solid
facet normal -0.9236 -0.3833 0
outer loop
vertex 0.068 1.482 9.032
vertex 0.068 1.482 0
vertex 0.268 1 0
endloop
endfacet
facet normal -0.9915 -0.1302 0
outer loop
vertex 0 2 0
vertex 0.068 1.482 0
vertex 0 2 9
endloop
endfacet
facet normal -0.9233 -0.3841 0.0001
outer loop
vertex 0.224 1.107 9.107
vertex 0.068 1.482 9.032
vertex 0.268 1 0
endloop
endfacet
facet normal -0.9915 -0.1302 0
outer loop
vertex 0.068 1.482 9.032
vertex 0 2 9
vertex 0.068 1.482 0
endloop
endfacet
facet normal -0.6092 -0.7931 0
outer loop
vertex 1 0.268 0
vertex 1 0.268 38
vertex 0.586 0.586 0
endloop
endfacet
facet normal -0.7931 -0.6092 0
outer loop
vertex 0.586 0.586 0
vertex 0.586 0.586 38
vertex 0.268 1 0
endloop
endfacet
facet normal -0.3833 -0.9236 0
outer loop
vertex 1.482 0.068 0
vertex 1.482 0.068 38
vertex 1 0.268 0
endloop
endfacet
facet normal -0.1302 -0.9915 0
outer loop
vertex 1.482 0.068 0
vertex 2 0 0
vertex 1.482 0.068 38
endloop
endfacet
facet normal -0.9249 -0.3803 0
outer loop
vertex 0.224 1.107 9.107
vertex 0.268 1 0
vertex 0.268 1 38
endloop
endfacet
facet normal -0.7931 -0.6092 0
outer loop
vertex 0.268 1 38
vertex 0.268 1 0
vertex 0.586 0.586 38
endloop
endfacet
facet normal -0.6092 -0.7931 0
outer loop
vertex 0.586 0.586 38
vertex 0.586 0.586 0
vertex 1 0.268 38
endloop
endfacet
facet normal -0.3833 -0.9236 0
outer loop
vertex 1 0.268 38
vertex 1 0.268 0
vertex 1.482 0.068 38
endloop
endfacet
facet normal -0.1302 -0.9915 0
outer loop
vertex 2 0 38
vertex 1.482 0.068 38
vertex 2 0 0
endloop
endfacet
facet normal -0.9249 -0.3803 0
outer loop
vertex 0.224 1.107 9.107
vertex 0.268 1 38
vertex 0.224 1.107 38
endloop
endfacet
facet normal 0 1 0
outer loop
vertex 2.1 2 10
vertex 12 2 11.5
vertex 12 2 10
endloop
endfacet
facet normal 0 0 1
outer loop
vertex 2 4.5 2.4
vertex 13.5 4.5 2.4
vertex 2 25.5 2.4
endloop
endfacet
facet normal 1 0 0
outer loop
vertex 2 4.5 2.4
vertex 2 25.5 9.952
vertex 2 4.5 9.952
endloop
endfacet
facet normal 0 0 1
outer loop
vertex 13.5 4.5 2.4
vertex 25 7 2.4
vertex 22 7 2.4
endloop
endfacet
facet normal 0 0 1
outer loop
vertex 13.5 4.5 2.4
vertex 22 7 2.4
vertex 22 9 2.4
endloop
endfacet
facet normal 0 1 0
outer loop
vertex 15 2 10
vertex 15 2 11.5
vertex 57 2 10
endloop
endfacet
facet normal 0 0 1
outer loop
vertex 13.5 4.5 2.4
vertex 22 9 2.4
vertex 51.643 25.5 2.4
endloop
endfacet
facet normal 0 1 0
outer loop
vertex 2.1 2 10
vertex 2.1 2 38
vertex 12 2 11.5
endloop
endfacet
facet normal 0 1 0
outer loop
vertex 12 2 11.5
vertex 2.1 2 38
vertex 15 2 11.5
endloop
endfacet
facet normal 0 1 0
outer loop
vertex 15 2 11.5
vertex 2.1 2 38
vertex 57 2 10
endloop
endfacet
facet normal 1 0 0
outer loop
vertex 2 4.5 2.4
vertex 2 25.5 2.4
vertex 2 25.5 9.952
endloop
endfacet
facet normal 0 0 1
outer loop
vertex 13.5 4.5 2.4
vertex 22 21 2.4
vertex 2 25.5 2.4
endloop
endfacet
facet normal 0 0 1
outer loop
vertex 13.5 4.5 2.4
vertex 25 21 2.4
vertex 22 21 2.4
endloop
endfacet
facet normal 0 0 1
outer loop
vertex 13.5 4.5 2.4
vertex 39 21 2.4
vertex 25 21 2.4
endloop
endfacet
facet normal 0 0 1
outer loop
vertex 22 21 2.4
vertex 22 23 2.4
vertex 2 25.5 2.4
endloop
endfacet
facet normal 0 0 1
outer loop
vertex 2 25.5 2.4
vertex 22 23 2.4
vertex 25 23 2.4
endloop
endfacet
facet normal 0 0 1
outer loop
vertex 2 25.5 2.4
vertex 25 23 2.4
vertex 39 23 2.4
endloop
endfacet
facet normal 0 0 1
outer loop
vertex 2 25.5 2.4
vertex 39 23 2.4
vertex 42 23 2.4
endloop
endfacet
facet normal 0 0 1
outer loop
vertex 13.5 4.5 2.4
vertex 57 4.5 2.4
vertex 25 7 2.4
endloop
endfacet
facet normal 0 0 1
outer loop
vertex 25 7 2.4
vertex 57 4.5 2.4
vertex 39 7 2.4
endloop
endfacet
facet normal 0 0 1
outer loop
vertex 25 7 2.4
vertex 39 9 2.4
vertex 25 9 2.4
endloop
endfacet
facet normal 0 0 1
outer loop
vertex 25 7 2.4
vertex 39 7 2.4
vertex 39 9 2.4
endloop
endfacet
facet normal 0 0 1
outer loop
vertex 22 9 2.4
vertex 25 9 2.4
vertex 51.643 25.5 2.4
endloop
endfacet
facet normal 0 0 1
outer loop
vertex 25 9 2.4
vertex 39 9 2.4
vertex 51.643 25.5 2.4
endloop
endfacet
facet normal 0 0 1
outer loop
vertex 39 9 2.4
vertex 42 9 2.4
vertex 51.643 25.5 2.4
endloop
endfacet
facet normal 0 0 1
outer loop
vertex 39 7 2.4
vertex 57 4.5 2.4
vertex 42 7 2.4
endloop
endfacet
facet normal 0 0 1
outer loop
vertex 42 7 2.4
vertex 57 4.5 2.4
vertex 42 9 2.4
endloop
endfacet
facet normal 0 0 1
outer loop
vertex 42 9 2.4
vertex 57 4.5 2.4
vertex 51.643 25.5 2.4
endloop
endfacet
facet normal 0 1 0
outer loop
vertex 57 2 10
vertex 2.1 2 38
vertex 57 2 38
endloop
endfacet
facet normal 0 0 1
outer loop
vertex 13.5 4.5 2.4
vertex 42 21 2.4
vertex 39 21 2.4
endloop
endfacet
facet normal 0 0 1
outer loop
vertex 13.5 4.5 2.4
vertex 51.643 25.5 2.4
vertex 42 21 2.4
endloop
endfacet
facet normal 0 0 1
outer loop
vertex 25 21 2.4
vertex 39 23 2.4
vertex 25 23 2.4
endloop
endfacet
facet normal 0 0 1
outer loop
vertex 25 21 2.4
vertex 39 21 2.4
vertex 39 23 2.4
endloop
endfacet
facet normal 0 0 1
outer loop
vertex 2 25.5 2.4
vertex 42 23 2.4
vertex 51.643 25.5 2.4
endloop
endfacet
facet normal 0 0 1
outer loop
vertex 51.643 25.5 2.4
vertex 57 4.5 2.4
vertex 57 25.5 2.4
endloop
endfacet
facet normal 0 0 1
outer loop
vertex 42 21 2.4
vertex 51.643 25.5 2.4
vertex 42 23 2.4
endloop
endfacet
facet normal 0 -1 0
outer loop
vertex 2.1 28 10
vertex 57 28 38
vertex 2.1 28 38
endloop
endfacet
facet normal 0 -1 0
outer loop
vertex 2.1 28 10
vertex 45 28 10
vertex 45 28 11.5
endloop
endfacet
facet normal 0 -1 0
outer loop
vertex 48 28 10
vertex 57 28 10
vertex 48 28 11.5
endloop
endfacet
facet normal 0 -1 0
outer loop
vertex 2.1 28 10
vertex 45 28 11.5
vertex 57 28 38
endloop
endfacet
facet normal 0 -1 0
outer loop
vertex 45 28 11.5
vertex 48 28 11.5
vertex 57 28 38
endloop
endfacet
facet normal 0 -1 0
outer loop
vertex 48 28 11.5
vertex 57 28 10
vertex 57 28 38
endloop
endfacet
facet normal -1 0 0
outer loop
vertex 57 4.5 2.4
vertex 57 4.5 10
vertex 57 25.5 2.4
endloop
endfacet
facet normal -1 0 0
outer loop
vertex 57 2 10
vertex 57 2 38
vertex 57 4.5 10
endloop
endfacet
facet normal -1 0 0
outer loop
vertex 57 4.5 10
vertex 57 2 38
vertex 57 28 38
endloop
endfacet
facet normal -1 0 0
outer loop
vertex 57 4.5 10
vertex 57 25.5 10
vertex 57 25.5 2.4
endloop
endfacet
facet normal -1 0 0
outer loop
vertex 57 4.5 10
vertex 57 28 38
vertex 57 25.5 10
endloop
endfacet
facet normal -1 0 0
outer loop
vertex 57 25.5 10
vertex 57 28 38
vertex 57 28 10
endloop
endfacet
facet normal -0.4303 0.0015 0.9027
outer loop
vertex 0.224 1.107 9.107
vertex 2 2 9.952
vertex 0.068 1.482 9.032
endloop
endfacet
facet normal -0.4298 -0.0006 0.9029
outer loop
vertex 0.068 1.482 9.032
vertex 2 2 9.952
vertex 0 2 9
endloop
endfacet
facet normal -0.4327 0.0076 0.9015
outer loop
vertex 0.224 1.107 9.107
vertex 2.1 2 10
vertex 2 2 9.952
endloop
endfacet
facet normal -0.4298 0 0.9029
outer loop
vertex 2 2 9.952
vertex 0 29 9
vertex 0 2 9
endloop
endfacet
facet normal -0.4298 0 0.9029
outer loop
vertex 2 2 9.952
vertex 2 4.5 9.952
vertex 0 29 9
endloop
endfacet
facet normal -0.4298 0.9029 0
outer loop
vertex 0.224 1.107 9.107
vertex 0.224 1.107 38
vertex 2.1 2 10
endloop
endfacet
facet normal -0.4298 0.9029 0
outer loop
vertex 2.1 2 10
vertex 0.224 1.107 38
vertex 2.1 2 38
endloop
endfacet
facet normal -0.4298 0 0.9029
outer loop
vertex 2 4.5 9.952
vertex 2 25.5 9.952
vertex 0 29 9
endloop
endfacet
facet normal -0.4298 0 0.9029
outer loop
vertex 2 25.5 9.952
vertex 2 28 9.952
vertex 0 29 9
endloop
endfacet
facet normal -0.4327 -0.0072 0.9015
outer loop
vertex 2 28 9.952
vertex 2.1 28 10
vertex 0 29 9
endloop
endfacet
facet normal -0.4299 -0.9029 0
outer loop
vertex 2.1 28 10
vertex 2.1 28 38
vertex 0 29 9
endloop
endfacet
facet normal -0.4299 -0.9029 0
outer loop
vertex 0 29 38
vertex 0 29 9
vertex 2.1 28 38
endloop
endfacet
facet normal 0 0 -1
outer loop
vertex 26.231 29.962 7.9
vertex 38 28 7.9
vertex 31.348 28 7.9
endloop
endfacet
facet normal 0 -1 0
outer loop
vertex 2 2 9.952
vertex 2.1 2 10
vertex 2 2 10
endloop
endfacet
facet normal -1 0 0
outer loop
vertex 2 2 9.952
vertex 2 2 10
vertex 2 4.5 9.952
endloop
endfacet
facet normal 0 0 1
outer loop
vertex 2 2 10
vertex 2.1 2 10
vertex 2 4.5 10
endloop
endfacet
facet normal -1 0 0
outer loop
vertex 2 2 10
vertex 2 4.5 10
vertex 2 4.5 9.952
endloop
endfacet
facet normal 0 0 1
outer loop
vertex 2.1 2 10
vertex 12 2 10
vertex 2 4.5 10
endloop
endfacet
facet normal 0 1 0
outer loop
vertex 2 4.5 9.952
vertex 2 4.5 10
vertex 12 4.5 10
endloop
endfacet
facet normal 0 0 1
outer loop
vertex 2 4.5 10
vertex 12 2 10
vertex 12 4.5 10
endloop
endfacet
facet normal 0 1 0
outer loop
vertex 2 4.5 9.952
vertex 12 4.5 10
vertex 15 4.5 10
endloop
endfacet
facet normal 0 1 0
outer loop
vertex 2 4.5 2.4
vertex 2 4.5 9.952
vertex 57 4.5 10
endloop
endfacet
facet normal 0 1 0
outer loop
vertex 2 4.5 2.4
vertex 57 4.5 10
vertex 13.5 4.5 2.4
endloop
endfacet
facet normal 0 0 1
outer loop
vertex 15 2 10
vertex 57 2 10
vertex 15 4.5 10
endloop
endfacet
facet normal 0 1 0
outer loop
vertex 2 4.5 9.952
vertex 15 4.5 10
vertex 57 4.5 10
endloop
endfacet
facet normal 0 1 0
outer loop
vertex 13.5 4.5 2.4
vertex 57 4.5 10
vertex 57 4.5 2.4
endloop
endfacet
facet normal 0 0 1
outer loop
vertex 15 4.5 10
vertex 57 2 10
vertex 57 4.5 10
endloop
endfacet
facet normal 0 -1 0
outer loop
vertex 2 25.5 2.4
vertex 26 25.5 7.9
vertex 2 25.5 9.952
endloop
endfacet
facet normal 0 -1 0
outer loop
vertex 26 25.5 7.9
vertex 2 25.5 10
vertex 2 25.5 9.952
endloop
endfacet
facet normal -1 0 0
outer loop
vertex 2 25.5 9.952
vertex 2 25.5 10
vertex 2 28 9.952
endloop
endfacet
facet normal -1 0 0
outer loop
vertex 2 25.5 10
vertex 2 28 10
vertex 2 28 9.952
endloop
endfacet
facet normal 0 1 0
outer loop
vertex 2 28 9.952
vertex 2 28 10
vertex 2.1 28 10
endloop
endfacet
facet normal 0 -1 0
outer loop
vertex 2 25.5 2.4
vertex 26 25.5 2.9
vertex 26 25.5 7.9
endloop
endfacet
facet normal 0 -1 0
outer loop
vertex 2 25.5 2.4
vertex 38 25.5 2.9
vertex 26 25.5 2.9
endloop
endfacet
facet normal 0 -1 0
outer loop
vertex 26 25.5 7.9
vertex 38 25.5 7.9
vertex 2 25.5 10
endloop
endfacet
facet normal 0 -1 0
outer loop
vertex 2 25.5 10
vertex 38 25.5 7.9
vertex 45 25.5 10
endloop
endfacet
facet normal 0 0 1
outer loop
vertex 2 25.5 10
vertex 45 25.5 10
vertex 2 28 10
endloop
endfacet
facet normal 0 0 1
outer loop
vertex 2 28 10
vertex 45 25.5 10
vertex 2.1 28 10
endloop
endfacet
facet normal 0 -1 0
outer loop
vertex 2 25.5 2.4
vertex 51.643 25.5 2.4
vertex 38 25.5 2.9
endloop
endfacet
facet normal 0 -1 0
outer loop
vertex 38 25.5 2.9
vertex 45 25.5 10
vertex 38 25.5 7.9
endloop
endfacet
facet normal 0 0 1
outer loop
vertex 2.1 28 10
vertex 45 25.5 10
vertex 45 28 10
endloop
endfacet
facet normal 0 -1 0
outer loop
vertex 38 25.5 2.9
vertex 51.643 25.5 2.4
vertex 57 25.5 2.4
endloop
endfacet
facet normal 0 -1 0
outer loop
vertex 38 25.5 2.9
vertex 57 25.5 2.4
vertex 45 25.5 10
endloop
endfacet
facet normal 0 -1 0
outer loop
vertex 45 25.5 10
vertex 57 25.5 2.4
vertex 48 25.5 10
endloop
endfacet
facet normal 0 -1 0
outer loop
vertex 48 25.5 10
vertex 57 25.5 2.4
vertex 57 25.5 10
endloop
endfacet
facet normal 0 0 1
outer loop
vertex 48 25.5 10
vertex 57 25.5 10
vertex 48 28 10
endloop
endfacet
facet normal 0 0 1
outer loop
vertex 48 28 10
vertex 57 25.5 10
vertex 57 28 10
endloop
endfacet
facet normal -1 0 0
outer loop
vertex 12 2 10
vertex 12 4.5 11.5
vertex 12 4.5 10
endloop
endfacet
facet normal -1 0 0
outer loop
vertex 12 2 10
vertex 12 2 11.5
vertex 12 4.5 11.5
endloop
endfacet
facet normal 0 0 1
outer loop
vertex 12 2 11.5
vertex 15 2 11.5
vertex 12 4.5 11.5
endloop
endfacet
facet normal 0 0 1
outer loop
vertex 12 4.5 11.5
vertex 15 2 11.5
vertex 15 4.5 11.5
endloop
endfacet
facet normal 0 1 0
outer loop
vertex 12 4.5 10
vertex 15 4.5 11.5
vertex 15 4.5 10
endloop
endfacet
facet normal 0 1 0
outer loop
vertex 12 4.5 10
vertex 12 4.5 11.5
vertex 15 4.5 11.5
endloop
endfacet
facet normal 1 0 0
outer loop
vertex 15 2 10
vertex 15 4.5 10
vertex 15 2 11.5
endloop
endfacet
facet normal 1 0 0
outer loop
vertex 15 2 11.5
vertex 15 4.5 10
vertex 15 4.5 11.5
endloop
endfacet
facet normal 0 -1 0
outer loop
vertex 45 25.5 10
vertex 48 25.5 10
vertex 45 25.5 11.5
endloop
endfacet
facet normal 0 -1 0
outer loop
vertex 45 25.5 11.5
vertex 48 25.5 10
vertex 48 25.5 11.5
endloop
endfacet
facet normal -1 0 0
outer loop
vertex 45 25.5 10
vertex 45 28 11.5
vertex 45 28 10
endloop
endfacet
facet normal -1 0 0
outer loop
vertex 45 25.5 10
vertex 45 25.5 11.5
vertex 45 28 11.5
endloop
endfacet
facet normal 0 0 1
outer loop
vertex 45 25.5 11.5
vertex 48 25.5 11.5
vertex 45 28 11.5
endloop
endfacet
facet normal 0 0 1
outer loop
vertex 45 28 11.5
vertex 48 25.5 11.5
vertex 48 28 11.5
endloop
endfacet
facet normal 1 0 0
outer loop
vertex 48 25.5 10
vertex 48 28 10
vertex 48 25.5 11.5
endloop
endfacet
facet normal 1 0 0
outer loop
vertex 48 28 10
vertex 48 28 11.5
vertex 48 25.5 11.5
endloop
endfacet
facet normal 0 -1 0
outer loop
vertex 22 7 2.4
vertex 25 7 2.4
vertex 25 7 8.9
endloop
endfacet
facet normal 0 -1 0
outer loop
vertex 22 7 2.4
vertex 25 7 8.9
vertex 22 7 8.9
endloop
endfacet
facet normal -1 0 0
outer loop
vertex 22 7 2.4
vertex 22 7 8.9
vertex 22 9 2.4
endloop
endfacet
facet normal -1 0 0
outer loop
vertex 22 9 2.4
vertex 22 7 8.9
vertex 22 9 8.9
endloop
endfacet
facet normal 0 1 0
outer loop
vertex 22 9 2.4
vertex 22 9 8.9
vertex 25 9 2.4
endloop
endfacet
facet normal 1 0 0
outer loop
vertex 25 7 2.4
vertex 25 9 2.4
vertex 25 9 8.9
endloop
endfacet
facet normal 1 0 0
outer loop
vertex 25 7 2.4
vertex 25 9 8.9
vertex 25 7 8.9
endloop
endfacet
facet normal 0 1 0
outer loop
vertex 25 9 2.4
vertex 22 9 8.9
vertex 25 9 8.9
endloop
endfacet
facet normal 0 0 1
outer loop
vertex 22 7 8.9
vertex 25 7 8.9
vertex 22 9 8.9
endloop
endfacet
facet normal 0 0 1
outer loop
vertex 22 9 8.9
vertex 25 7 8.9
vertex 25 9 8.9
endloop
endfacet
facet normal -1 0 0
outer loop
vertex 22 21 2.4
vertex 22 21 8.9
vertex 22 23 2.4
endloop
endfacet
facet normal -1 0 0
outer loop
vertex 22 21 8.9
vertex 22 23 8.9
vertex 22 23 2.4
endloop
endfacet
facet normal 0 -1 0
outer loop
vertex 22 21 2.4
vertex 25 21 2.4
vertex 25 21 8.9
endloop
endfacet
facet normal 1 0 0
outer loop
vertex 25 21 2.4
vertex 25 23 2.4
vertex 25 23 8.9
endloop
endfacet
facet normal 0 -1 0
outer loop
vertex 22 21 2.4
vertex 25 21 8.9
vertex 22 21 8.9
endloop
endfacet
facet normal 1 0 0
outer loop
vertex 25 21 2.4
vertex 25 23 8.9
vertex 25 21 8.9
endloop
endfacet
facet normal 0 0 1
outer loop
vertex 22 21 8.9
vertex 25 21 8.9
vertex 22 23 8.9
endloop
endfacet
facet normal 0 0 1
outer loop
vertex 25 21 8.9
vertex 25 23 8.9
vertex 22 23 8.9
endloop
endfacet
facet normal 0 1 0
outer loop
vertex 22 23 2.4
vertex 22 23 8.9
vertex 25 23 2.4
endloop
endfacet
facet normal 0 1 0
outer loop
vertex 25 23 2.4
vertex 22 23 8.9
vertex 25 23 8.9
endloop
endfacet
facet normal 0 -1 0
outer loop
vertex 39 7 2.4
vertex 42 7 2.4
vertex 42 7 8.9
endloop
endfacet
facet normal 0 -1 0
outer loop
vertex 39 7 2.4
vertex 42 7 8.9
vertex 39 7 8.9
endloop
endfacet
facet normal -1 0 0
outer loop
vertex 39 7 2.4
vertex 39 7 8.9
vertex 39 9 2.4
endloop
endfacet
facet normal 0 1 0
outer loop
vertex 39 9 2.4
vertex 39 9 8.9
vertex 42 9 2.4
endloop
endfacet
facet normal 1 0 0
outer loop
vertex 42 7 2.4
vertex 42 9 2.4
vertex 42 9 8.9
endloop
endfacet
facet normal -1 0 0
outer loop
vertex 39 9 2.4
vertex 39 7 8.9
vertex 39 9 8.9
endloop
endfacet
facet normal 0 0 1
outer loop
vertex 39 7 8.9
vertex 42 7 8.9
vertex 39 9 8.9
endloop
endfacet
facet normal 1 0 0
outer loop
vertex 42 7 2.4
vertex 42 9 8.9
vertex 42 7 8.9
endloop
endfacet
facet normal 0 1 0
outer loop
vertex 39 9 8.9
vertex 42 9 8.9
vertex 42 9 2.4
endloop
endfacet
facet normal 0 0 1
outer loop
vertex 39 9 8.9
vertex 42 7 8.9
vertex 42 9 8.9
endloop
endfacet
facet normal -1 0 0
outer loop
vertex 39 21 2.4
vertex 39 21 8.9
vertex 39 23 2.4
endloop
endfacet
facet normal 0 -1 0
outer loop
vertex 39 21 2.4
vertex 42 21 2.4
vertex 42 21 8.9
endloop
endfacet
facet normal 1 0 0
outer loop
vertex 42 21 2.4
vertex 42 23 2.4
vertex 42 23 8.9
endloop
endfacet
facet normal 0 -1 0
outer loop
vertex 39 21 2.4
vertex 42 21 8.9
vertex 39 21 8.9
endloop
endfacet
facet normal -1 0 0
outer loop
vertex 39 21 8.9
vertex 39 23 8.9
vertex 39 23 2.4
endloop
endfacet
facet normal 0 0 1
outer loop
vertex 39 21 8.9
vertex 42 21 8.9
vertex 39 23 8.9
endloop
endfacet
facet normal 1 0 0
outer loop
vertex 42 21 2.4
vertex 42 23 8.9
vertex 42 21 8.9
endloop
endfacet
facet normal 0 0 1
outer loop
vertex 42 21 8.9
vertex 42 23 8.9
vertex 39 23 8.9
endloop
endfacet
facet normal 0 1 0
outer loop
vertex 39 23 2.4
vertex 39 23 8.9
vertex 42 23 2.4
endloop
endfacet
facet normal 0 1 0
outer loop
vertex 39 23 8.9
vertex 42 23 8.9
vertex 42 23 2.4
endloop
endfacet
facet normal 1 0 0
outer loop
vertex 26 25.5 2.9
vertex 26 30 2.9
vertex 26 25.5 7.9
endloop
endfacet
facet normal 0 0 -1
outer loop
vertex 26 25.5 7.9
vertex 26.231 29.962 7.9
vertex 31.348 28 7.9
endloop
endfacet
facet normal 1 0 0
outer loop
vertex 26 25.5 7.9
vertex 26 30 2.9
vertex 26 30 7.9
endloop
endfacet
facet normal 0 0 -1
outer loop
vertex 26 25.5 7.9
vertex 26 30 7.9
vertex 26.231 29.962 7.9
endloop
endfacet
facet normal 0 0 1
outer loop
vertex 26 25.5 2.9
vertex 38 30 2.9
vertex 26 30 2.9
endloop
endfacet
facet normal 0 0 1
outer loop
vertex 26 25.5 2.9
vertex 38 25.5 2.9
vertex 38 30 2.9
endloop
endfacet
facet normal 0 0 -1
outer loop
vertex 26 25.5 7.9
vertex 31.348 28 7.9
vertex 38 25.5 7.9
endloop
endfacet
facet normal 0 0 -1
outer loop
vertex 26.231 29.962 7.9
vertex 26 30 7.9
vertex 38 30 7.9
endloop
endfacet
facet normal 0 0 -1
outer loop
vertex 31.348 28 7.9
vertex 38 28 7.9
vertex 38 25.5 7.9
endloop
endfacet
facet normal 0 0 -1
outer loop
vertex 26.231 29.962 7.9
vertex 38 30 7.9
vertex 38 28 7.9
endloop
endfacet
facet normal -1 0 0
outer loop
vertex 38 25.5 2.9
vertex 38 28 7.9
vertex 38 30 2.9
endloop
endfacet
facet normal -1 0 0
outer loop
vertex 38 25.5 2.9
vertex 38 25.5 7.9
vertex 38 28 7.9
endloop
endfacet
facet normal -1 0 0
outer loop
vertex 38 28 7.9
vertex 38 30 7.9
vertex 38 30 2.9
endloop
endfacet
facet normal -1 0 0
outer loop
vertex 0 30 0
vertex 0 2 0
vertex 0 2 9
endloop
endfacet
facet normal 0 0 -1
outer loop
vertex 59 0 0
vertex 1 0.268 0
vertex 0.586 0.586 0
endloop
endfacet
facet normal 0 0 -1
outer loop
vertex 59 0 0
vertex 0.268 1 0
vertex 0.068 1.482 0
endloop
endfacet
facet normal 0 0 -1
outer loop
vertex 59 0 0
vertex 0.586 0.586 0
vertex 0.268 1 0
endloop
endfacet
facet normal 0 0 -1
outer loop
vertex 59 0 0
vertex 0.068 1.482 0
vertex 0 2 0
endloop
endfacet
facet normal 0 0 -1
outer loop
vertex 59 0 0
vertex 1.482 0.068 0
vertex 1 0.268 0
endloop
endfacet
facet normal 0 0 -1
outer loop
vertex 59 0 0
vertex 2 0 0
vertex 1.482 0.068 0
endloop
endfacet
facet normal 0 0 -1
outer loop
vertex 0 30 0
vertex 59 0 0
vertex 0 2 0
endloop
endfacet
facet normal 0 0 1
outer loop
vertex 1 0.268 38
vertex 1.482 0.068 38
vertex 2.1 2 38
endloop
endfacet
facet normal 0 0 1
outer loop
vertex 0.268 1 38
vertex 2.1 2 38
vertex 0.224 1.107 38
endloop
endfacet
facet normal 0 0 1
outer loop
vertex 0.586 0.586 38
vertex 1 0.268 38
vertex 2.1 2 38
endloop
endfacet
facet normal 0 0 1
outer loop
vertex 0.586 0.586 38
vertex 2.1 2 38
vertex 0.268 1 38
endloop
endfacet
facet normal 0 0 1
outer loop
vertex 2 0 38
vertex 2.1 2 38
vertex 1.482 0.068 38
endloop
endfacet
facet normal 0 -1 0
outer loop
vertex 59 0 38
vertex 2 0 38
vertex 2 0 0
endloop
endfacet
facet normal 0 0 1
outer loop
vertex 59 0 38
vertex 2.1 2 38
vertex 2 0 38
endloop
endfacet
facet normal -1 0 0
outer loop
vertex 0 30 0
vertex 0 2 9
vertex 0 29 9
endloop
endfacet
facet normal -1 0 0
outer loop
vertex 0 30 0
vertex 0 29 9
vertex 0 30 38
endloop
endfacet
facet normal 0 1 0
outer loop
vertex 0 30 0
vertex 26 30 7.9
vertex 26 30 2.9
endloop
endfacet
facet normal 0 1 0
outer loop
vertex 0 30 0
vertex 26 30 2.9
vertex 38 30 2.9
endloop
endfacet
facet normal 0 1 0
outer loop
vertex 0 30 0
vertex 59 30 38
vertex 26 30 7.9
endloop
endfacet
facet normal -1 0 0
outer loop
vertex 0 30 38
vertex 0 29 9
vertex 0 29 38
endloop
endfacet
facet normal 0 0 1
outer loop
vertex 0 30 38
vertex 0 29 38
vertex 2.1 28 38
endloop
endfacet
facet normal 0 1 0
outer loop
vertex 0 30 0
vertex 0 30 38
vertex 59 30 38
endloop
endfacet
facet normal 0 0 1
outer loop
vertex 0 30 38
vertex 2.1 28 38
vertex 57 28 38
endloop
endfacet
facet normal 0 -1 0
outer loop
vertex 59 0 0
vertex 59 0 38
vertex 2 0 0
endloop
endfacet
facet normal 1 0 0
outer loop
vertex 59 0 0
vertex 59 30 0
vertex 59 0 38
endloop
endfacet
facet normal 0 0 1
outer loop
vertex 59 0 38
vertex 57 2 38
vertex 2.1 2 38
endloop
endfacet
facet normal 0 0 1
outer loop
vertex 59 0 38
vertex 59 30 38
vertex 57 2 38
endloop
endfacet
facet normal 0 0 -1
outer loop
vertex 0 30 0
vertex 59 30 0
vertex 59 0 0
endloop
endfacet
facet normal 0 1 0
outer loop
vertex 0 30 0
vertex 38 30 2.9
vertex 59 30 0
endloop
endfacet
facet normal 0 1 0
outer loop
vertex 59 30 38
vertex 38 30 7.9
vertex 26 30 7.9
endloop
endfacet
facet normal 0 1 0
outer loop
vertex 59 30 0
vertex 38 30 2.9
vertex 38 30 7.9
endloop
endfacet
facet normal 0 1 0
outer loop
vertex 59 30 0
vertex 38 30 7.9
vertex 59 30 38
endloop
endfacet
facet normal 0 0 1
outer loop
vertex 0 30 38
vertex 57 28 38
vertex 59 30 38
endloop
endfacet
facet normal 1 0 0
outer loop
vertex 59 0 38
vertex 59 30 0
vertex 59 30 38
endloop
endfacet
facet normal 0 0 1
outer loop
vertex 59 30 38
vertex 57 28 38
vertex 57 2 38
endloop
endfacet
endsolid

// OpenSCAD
// Concept v0; mm. Regenerate using dimensions.json and build.py.
intersection() {
difference() {
difference() {
union() {
difference() {
difference() {
union() {
difference() {
difference() {
union() {
difference() {
difference() {
union() {
difference() {
union() {
union() {
union() {
union() {
union() {
union() {
union() {
union() {
difference() {
difference() {
difference() {
difference() {
union() {
union() {
difference() {
translate([0, 0, 0]) {
hull() {
union() {
union() {
union() {
translate([2, 2, 0]) {
cylinder(h=38,r=2,$fn=24);
}
translate([2, 88.0, 0]) {
cylinder(h=38,r=2,$fn=24);
}
}
translate([105.0, 2, 0]) {
cylinder(h=38,r=2,$fn=24);
}
}
translate([105.0, 88.0, 0]) {
cylinder(h=38,r=2,$fn=24);
}
}
}
}
translate([2.0, 2.0, 2.4]) {
cube([103.0, 86.0, 38]);
}
}
translate([0, 28.0, 0]) {
cube([107.0, 2.0, 38]);
}
}
translate([57.0, 0, 0]) {
cube([2.0, 28.0, 38]);
}
}
translate([-0.05, 2.0, 10.0]) {
cube([2.1, 26.0, 38]);
}
}
hull() {
union() {
translate([-0.05, 1.0, 9.0]) {
cube([0.05, 28.0, 38]);
}
translate([2.05, 2.0, 10.0]) {
cube([0.05, 26.0, 38]);
}
}
}
}
translate([104.95, 49.0, 10.0]) {
cube([2.1, 20.0, 16.0]);
}
}
translate([26.0, 27.95, 2.9]) {
cube([12, 2.1, 5]);
}
}
translate([2.0, 2.0, 2.4]) {
cube([55.0, 2.5, 7.6]);
}
}
translate([2.0, 25.5, 2.4]) {
cube([55.0, 2.5, 7.6]);
}
}
translate([12, 2.0, 9.95]) {
cube([3, 2.5, 1.55]);
}
}
translate([45.0, 25.5, 9.95]) {
cube([3, 2.5, 1.55]);
}
}
translate([22.0, 7.0, 2.35]) {
cube([3, 2, 6.55]);
}
}
translate([22.0, 21.0, 2.35]) {
cube([3, 2, 6.55]);
}
}
translate([39.0, 7.0, 2.35]) {
cube([3, 2, 6.55]);
}
}
translate([39.0, 21.0, 2.35]) {
cube([3, 2, 6.55]);
}
}
translate([26.0, 25.45, 2.9]) {
cube([12, 4.6, 5]);
}
}
translate([6, 82.0, 0]) {
cylinder(h=38,r=4.5,$fn=48);
}
}
translate([6, 82.0, -0.05]) {
cylinder(h=38.1,r=1.7,$fn=48);
}
}
translate([6, 82.0, -0.05]) {
cylinder(h=2.8499999999999996,r=3.5795716689756802,$fn=6);
}
}
translate([101.0, 82.0, 0]) {
cylinder(h=38,r=4.5,$fn=48);
}
}
translate([101.0, 82.0, -0.05]) {
cylinder(h=38.1,r=1.7,$fn=48);
}
}
translate([101.0, 82.0, -0.05]) {
cylinder(h=2.8499999999999996,r=3.5795716689756802,$fn=6);
}
}
translate([65.0, 7, 0]) {
cylinder(h=38,r=4.5,$fn=48);
}
}
translate([65.0, 7, -0.05]) {
cylinder(h=38.1,r=1.7,$fn=48);
}
}
translate([65.0, 7, -0.05]) {
cylinder(h=2.8499999999999996,r=3.5795716689756802,$fn=6);
}
}
translate([101.0, 7, 0]) {
cylinder(h=38,r=4.5,$fn=48);
}
}
translate([101.0, 7, -0.05]) {
cylinder(h=38.1,r=1.7,$fn=48);
}
}
translate([101.0, 7, -0.05]) {
cylinder(h=2.8499999999999996,r=3.5795716689756802,$fn=6);
}
}
translate([0, 0, 0]) {
cube([59.0, 30.0, 38]);
}
}
